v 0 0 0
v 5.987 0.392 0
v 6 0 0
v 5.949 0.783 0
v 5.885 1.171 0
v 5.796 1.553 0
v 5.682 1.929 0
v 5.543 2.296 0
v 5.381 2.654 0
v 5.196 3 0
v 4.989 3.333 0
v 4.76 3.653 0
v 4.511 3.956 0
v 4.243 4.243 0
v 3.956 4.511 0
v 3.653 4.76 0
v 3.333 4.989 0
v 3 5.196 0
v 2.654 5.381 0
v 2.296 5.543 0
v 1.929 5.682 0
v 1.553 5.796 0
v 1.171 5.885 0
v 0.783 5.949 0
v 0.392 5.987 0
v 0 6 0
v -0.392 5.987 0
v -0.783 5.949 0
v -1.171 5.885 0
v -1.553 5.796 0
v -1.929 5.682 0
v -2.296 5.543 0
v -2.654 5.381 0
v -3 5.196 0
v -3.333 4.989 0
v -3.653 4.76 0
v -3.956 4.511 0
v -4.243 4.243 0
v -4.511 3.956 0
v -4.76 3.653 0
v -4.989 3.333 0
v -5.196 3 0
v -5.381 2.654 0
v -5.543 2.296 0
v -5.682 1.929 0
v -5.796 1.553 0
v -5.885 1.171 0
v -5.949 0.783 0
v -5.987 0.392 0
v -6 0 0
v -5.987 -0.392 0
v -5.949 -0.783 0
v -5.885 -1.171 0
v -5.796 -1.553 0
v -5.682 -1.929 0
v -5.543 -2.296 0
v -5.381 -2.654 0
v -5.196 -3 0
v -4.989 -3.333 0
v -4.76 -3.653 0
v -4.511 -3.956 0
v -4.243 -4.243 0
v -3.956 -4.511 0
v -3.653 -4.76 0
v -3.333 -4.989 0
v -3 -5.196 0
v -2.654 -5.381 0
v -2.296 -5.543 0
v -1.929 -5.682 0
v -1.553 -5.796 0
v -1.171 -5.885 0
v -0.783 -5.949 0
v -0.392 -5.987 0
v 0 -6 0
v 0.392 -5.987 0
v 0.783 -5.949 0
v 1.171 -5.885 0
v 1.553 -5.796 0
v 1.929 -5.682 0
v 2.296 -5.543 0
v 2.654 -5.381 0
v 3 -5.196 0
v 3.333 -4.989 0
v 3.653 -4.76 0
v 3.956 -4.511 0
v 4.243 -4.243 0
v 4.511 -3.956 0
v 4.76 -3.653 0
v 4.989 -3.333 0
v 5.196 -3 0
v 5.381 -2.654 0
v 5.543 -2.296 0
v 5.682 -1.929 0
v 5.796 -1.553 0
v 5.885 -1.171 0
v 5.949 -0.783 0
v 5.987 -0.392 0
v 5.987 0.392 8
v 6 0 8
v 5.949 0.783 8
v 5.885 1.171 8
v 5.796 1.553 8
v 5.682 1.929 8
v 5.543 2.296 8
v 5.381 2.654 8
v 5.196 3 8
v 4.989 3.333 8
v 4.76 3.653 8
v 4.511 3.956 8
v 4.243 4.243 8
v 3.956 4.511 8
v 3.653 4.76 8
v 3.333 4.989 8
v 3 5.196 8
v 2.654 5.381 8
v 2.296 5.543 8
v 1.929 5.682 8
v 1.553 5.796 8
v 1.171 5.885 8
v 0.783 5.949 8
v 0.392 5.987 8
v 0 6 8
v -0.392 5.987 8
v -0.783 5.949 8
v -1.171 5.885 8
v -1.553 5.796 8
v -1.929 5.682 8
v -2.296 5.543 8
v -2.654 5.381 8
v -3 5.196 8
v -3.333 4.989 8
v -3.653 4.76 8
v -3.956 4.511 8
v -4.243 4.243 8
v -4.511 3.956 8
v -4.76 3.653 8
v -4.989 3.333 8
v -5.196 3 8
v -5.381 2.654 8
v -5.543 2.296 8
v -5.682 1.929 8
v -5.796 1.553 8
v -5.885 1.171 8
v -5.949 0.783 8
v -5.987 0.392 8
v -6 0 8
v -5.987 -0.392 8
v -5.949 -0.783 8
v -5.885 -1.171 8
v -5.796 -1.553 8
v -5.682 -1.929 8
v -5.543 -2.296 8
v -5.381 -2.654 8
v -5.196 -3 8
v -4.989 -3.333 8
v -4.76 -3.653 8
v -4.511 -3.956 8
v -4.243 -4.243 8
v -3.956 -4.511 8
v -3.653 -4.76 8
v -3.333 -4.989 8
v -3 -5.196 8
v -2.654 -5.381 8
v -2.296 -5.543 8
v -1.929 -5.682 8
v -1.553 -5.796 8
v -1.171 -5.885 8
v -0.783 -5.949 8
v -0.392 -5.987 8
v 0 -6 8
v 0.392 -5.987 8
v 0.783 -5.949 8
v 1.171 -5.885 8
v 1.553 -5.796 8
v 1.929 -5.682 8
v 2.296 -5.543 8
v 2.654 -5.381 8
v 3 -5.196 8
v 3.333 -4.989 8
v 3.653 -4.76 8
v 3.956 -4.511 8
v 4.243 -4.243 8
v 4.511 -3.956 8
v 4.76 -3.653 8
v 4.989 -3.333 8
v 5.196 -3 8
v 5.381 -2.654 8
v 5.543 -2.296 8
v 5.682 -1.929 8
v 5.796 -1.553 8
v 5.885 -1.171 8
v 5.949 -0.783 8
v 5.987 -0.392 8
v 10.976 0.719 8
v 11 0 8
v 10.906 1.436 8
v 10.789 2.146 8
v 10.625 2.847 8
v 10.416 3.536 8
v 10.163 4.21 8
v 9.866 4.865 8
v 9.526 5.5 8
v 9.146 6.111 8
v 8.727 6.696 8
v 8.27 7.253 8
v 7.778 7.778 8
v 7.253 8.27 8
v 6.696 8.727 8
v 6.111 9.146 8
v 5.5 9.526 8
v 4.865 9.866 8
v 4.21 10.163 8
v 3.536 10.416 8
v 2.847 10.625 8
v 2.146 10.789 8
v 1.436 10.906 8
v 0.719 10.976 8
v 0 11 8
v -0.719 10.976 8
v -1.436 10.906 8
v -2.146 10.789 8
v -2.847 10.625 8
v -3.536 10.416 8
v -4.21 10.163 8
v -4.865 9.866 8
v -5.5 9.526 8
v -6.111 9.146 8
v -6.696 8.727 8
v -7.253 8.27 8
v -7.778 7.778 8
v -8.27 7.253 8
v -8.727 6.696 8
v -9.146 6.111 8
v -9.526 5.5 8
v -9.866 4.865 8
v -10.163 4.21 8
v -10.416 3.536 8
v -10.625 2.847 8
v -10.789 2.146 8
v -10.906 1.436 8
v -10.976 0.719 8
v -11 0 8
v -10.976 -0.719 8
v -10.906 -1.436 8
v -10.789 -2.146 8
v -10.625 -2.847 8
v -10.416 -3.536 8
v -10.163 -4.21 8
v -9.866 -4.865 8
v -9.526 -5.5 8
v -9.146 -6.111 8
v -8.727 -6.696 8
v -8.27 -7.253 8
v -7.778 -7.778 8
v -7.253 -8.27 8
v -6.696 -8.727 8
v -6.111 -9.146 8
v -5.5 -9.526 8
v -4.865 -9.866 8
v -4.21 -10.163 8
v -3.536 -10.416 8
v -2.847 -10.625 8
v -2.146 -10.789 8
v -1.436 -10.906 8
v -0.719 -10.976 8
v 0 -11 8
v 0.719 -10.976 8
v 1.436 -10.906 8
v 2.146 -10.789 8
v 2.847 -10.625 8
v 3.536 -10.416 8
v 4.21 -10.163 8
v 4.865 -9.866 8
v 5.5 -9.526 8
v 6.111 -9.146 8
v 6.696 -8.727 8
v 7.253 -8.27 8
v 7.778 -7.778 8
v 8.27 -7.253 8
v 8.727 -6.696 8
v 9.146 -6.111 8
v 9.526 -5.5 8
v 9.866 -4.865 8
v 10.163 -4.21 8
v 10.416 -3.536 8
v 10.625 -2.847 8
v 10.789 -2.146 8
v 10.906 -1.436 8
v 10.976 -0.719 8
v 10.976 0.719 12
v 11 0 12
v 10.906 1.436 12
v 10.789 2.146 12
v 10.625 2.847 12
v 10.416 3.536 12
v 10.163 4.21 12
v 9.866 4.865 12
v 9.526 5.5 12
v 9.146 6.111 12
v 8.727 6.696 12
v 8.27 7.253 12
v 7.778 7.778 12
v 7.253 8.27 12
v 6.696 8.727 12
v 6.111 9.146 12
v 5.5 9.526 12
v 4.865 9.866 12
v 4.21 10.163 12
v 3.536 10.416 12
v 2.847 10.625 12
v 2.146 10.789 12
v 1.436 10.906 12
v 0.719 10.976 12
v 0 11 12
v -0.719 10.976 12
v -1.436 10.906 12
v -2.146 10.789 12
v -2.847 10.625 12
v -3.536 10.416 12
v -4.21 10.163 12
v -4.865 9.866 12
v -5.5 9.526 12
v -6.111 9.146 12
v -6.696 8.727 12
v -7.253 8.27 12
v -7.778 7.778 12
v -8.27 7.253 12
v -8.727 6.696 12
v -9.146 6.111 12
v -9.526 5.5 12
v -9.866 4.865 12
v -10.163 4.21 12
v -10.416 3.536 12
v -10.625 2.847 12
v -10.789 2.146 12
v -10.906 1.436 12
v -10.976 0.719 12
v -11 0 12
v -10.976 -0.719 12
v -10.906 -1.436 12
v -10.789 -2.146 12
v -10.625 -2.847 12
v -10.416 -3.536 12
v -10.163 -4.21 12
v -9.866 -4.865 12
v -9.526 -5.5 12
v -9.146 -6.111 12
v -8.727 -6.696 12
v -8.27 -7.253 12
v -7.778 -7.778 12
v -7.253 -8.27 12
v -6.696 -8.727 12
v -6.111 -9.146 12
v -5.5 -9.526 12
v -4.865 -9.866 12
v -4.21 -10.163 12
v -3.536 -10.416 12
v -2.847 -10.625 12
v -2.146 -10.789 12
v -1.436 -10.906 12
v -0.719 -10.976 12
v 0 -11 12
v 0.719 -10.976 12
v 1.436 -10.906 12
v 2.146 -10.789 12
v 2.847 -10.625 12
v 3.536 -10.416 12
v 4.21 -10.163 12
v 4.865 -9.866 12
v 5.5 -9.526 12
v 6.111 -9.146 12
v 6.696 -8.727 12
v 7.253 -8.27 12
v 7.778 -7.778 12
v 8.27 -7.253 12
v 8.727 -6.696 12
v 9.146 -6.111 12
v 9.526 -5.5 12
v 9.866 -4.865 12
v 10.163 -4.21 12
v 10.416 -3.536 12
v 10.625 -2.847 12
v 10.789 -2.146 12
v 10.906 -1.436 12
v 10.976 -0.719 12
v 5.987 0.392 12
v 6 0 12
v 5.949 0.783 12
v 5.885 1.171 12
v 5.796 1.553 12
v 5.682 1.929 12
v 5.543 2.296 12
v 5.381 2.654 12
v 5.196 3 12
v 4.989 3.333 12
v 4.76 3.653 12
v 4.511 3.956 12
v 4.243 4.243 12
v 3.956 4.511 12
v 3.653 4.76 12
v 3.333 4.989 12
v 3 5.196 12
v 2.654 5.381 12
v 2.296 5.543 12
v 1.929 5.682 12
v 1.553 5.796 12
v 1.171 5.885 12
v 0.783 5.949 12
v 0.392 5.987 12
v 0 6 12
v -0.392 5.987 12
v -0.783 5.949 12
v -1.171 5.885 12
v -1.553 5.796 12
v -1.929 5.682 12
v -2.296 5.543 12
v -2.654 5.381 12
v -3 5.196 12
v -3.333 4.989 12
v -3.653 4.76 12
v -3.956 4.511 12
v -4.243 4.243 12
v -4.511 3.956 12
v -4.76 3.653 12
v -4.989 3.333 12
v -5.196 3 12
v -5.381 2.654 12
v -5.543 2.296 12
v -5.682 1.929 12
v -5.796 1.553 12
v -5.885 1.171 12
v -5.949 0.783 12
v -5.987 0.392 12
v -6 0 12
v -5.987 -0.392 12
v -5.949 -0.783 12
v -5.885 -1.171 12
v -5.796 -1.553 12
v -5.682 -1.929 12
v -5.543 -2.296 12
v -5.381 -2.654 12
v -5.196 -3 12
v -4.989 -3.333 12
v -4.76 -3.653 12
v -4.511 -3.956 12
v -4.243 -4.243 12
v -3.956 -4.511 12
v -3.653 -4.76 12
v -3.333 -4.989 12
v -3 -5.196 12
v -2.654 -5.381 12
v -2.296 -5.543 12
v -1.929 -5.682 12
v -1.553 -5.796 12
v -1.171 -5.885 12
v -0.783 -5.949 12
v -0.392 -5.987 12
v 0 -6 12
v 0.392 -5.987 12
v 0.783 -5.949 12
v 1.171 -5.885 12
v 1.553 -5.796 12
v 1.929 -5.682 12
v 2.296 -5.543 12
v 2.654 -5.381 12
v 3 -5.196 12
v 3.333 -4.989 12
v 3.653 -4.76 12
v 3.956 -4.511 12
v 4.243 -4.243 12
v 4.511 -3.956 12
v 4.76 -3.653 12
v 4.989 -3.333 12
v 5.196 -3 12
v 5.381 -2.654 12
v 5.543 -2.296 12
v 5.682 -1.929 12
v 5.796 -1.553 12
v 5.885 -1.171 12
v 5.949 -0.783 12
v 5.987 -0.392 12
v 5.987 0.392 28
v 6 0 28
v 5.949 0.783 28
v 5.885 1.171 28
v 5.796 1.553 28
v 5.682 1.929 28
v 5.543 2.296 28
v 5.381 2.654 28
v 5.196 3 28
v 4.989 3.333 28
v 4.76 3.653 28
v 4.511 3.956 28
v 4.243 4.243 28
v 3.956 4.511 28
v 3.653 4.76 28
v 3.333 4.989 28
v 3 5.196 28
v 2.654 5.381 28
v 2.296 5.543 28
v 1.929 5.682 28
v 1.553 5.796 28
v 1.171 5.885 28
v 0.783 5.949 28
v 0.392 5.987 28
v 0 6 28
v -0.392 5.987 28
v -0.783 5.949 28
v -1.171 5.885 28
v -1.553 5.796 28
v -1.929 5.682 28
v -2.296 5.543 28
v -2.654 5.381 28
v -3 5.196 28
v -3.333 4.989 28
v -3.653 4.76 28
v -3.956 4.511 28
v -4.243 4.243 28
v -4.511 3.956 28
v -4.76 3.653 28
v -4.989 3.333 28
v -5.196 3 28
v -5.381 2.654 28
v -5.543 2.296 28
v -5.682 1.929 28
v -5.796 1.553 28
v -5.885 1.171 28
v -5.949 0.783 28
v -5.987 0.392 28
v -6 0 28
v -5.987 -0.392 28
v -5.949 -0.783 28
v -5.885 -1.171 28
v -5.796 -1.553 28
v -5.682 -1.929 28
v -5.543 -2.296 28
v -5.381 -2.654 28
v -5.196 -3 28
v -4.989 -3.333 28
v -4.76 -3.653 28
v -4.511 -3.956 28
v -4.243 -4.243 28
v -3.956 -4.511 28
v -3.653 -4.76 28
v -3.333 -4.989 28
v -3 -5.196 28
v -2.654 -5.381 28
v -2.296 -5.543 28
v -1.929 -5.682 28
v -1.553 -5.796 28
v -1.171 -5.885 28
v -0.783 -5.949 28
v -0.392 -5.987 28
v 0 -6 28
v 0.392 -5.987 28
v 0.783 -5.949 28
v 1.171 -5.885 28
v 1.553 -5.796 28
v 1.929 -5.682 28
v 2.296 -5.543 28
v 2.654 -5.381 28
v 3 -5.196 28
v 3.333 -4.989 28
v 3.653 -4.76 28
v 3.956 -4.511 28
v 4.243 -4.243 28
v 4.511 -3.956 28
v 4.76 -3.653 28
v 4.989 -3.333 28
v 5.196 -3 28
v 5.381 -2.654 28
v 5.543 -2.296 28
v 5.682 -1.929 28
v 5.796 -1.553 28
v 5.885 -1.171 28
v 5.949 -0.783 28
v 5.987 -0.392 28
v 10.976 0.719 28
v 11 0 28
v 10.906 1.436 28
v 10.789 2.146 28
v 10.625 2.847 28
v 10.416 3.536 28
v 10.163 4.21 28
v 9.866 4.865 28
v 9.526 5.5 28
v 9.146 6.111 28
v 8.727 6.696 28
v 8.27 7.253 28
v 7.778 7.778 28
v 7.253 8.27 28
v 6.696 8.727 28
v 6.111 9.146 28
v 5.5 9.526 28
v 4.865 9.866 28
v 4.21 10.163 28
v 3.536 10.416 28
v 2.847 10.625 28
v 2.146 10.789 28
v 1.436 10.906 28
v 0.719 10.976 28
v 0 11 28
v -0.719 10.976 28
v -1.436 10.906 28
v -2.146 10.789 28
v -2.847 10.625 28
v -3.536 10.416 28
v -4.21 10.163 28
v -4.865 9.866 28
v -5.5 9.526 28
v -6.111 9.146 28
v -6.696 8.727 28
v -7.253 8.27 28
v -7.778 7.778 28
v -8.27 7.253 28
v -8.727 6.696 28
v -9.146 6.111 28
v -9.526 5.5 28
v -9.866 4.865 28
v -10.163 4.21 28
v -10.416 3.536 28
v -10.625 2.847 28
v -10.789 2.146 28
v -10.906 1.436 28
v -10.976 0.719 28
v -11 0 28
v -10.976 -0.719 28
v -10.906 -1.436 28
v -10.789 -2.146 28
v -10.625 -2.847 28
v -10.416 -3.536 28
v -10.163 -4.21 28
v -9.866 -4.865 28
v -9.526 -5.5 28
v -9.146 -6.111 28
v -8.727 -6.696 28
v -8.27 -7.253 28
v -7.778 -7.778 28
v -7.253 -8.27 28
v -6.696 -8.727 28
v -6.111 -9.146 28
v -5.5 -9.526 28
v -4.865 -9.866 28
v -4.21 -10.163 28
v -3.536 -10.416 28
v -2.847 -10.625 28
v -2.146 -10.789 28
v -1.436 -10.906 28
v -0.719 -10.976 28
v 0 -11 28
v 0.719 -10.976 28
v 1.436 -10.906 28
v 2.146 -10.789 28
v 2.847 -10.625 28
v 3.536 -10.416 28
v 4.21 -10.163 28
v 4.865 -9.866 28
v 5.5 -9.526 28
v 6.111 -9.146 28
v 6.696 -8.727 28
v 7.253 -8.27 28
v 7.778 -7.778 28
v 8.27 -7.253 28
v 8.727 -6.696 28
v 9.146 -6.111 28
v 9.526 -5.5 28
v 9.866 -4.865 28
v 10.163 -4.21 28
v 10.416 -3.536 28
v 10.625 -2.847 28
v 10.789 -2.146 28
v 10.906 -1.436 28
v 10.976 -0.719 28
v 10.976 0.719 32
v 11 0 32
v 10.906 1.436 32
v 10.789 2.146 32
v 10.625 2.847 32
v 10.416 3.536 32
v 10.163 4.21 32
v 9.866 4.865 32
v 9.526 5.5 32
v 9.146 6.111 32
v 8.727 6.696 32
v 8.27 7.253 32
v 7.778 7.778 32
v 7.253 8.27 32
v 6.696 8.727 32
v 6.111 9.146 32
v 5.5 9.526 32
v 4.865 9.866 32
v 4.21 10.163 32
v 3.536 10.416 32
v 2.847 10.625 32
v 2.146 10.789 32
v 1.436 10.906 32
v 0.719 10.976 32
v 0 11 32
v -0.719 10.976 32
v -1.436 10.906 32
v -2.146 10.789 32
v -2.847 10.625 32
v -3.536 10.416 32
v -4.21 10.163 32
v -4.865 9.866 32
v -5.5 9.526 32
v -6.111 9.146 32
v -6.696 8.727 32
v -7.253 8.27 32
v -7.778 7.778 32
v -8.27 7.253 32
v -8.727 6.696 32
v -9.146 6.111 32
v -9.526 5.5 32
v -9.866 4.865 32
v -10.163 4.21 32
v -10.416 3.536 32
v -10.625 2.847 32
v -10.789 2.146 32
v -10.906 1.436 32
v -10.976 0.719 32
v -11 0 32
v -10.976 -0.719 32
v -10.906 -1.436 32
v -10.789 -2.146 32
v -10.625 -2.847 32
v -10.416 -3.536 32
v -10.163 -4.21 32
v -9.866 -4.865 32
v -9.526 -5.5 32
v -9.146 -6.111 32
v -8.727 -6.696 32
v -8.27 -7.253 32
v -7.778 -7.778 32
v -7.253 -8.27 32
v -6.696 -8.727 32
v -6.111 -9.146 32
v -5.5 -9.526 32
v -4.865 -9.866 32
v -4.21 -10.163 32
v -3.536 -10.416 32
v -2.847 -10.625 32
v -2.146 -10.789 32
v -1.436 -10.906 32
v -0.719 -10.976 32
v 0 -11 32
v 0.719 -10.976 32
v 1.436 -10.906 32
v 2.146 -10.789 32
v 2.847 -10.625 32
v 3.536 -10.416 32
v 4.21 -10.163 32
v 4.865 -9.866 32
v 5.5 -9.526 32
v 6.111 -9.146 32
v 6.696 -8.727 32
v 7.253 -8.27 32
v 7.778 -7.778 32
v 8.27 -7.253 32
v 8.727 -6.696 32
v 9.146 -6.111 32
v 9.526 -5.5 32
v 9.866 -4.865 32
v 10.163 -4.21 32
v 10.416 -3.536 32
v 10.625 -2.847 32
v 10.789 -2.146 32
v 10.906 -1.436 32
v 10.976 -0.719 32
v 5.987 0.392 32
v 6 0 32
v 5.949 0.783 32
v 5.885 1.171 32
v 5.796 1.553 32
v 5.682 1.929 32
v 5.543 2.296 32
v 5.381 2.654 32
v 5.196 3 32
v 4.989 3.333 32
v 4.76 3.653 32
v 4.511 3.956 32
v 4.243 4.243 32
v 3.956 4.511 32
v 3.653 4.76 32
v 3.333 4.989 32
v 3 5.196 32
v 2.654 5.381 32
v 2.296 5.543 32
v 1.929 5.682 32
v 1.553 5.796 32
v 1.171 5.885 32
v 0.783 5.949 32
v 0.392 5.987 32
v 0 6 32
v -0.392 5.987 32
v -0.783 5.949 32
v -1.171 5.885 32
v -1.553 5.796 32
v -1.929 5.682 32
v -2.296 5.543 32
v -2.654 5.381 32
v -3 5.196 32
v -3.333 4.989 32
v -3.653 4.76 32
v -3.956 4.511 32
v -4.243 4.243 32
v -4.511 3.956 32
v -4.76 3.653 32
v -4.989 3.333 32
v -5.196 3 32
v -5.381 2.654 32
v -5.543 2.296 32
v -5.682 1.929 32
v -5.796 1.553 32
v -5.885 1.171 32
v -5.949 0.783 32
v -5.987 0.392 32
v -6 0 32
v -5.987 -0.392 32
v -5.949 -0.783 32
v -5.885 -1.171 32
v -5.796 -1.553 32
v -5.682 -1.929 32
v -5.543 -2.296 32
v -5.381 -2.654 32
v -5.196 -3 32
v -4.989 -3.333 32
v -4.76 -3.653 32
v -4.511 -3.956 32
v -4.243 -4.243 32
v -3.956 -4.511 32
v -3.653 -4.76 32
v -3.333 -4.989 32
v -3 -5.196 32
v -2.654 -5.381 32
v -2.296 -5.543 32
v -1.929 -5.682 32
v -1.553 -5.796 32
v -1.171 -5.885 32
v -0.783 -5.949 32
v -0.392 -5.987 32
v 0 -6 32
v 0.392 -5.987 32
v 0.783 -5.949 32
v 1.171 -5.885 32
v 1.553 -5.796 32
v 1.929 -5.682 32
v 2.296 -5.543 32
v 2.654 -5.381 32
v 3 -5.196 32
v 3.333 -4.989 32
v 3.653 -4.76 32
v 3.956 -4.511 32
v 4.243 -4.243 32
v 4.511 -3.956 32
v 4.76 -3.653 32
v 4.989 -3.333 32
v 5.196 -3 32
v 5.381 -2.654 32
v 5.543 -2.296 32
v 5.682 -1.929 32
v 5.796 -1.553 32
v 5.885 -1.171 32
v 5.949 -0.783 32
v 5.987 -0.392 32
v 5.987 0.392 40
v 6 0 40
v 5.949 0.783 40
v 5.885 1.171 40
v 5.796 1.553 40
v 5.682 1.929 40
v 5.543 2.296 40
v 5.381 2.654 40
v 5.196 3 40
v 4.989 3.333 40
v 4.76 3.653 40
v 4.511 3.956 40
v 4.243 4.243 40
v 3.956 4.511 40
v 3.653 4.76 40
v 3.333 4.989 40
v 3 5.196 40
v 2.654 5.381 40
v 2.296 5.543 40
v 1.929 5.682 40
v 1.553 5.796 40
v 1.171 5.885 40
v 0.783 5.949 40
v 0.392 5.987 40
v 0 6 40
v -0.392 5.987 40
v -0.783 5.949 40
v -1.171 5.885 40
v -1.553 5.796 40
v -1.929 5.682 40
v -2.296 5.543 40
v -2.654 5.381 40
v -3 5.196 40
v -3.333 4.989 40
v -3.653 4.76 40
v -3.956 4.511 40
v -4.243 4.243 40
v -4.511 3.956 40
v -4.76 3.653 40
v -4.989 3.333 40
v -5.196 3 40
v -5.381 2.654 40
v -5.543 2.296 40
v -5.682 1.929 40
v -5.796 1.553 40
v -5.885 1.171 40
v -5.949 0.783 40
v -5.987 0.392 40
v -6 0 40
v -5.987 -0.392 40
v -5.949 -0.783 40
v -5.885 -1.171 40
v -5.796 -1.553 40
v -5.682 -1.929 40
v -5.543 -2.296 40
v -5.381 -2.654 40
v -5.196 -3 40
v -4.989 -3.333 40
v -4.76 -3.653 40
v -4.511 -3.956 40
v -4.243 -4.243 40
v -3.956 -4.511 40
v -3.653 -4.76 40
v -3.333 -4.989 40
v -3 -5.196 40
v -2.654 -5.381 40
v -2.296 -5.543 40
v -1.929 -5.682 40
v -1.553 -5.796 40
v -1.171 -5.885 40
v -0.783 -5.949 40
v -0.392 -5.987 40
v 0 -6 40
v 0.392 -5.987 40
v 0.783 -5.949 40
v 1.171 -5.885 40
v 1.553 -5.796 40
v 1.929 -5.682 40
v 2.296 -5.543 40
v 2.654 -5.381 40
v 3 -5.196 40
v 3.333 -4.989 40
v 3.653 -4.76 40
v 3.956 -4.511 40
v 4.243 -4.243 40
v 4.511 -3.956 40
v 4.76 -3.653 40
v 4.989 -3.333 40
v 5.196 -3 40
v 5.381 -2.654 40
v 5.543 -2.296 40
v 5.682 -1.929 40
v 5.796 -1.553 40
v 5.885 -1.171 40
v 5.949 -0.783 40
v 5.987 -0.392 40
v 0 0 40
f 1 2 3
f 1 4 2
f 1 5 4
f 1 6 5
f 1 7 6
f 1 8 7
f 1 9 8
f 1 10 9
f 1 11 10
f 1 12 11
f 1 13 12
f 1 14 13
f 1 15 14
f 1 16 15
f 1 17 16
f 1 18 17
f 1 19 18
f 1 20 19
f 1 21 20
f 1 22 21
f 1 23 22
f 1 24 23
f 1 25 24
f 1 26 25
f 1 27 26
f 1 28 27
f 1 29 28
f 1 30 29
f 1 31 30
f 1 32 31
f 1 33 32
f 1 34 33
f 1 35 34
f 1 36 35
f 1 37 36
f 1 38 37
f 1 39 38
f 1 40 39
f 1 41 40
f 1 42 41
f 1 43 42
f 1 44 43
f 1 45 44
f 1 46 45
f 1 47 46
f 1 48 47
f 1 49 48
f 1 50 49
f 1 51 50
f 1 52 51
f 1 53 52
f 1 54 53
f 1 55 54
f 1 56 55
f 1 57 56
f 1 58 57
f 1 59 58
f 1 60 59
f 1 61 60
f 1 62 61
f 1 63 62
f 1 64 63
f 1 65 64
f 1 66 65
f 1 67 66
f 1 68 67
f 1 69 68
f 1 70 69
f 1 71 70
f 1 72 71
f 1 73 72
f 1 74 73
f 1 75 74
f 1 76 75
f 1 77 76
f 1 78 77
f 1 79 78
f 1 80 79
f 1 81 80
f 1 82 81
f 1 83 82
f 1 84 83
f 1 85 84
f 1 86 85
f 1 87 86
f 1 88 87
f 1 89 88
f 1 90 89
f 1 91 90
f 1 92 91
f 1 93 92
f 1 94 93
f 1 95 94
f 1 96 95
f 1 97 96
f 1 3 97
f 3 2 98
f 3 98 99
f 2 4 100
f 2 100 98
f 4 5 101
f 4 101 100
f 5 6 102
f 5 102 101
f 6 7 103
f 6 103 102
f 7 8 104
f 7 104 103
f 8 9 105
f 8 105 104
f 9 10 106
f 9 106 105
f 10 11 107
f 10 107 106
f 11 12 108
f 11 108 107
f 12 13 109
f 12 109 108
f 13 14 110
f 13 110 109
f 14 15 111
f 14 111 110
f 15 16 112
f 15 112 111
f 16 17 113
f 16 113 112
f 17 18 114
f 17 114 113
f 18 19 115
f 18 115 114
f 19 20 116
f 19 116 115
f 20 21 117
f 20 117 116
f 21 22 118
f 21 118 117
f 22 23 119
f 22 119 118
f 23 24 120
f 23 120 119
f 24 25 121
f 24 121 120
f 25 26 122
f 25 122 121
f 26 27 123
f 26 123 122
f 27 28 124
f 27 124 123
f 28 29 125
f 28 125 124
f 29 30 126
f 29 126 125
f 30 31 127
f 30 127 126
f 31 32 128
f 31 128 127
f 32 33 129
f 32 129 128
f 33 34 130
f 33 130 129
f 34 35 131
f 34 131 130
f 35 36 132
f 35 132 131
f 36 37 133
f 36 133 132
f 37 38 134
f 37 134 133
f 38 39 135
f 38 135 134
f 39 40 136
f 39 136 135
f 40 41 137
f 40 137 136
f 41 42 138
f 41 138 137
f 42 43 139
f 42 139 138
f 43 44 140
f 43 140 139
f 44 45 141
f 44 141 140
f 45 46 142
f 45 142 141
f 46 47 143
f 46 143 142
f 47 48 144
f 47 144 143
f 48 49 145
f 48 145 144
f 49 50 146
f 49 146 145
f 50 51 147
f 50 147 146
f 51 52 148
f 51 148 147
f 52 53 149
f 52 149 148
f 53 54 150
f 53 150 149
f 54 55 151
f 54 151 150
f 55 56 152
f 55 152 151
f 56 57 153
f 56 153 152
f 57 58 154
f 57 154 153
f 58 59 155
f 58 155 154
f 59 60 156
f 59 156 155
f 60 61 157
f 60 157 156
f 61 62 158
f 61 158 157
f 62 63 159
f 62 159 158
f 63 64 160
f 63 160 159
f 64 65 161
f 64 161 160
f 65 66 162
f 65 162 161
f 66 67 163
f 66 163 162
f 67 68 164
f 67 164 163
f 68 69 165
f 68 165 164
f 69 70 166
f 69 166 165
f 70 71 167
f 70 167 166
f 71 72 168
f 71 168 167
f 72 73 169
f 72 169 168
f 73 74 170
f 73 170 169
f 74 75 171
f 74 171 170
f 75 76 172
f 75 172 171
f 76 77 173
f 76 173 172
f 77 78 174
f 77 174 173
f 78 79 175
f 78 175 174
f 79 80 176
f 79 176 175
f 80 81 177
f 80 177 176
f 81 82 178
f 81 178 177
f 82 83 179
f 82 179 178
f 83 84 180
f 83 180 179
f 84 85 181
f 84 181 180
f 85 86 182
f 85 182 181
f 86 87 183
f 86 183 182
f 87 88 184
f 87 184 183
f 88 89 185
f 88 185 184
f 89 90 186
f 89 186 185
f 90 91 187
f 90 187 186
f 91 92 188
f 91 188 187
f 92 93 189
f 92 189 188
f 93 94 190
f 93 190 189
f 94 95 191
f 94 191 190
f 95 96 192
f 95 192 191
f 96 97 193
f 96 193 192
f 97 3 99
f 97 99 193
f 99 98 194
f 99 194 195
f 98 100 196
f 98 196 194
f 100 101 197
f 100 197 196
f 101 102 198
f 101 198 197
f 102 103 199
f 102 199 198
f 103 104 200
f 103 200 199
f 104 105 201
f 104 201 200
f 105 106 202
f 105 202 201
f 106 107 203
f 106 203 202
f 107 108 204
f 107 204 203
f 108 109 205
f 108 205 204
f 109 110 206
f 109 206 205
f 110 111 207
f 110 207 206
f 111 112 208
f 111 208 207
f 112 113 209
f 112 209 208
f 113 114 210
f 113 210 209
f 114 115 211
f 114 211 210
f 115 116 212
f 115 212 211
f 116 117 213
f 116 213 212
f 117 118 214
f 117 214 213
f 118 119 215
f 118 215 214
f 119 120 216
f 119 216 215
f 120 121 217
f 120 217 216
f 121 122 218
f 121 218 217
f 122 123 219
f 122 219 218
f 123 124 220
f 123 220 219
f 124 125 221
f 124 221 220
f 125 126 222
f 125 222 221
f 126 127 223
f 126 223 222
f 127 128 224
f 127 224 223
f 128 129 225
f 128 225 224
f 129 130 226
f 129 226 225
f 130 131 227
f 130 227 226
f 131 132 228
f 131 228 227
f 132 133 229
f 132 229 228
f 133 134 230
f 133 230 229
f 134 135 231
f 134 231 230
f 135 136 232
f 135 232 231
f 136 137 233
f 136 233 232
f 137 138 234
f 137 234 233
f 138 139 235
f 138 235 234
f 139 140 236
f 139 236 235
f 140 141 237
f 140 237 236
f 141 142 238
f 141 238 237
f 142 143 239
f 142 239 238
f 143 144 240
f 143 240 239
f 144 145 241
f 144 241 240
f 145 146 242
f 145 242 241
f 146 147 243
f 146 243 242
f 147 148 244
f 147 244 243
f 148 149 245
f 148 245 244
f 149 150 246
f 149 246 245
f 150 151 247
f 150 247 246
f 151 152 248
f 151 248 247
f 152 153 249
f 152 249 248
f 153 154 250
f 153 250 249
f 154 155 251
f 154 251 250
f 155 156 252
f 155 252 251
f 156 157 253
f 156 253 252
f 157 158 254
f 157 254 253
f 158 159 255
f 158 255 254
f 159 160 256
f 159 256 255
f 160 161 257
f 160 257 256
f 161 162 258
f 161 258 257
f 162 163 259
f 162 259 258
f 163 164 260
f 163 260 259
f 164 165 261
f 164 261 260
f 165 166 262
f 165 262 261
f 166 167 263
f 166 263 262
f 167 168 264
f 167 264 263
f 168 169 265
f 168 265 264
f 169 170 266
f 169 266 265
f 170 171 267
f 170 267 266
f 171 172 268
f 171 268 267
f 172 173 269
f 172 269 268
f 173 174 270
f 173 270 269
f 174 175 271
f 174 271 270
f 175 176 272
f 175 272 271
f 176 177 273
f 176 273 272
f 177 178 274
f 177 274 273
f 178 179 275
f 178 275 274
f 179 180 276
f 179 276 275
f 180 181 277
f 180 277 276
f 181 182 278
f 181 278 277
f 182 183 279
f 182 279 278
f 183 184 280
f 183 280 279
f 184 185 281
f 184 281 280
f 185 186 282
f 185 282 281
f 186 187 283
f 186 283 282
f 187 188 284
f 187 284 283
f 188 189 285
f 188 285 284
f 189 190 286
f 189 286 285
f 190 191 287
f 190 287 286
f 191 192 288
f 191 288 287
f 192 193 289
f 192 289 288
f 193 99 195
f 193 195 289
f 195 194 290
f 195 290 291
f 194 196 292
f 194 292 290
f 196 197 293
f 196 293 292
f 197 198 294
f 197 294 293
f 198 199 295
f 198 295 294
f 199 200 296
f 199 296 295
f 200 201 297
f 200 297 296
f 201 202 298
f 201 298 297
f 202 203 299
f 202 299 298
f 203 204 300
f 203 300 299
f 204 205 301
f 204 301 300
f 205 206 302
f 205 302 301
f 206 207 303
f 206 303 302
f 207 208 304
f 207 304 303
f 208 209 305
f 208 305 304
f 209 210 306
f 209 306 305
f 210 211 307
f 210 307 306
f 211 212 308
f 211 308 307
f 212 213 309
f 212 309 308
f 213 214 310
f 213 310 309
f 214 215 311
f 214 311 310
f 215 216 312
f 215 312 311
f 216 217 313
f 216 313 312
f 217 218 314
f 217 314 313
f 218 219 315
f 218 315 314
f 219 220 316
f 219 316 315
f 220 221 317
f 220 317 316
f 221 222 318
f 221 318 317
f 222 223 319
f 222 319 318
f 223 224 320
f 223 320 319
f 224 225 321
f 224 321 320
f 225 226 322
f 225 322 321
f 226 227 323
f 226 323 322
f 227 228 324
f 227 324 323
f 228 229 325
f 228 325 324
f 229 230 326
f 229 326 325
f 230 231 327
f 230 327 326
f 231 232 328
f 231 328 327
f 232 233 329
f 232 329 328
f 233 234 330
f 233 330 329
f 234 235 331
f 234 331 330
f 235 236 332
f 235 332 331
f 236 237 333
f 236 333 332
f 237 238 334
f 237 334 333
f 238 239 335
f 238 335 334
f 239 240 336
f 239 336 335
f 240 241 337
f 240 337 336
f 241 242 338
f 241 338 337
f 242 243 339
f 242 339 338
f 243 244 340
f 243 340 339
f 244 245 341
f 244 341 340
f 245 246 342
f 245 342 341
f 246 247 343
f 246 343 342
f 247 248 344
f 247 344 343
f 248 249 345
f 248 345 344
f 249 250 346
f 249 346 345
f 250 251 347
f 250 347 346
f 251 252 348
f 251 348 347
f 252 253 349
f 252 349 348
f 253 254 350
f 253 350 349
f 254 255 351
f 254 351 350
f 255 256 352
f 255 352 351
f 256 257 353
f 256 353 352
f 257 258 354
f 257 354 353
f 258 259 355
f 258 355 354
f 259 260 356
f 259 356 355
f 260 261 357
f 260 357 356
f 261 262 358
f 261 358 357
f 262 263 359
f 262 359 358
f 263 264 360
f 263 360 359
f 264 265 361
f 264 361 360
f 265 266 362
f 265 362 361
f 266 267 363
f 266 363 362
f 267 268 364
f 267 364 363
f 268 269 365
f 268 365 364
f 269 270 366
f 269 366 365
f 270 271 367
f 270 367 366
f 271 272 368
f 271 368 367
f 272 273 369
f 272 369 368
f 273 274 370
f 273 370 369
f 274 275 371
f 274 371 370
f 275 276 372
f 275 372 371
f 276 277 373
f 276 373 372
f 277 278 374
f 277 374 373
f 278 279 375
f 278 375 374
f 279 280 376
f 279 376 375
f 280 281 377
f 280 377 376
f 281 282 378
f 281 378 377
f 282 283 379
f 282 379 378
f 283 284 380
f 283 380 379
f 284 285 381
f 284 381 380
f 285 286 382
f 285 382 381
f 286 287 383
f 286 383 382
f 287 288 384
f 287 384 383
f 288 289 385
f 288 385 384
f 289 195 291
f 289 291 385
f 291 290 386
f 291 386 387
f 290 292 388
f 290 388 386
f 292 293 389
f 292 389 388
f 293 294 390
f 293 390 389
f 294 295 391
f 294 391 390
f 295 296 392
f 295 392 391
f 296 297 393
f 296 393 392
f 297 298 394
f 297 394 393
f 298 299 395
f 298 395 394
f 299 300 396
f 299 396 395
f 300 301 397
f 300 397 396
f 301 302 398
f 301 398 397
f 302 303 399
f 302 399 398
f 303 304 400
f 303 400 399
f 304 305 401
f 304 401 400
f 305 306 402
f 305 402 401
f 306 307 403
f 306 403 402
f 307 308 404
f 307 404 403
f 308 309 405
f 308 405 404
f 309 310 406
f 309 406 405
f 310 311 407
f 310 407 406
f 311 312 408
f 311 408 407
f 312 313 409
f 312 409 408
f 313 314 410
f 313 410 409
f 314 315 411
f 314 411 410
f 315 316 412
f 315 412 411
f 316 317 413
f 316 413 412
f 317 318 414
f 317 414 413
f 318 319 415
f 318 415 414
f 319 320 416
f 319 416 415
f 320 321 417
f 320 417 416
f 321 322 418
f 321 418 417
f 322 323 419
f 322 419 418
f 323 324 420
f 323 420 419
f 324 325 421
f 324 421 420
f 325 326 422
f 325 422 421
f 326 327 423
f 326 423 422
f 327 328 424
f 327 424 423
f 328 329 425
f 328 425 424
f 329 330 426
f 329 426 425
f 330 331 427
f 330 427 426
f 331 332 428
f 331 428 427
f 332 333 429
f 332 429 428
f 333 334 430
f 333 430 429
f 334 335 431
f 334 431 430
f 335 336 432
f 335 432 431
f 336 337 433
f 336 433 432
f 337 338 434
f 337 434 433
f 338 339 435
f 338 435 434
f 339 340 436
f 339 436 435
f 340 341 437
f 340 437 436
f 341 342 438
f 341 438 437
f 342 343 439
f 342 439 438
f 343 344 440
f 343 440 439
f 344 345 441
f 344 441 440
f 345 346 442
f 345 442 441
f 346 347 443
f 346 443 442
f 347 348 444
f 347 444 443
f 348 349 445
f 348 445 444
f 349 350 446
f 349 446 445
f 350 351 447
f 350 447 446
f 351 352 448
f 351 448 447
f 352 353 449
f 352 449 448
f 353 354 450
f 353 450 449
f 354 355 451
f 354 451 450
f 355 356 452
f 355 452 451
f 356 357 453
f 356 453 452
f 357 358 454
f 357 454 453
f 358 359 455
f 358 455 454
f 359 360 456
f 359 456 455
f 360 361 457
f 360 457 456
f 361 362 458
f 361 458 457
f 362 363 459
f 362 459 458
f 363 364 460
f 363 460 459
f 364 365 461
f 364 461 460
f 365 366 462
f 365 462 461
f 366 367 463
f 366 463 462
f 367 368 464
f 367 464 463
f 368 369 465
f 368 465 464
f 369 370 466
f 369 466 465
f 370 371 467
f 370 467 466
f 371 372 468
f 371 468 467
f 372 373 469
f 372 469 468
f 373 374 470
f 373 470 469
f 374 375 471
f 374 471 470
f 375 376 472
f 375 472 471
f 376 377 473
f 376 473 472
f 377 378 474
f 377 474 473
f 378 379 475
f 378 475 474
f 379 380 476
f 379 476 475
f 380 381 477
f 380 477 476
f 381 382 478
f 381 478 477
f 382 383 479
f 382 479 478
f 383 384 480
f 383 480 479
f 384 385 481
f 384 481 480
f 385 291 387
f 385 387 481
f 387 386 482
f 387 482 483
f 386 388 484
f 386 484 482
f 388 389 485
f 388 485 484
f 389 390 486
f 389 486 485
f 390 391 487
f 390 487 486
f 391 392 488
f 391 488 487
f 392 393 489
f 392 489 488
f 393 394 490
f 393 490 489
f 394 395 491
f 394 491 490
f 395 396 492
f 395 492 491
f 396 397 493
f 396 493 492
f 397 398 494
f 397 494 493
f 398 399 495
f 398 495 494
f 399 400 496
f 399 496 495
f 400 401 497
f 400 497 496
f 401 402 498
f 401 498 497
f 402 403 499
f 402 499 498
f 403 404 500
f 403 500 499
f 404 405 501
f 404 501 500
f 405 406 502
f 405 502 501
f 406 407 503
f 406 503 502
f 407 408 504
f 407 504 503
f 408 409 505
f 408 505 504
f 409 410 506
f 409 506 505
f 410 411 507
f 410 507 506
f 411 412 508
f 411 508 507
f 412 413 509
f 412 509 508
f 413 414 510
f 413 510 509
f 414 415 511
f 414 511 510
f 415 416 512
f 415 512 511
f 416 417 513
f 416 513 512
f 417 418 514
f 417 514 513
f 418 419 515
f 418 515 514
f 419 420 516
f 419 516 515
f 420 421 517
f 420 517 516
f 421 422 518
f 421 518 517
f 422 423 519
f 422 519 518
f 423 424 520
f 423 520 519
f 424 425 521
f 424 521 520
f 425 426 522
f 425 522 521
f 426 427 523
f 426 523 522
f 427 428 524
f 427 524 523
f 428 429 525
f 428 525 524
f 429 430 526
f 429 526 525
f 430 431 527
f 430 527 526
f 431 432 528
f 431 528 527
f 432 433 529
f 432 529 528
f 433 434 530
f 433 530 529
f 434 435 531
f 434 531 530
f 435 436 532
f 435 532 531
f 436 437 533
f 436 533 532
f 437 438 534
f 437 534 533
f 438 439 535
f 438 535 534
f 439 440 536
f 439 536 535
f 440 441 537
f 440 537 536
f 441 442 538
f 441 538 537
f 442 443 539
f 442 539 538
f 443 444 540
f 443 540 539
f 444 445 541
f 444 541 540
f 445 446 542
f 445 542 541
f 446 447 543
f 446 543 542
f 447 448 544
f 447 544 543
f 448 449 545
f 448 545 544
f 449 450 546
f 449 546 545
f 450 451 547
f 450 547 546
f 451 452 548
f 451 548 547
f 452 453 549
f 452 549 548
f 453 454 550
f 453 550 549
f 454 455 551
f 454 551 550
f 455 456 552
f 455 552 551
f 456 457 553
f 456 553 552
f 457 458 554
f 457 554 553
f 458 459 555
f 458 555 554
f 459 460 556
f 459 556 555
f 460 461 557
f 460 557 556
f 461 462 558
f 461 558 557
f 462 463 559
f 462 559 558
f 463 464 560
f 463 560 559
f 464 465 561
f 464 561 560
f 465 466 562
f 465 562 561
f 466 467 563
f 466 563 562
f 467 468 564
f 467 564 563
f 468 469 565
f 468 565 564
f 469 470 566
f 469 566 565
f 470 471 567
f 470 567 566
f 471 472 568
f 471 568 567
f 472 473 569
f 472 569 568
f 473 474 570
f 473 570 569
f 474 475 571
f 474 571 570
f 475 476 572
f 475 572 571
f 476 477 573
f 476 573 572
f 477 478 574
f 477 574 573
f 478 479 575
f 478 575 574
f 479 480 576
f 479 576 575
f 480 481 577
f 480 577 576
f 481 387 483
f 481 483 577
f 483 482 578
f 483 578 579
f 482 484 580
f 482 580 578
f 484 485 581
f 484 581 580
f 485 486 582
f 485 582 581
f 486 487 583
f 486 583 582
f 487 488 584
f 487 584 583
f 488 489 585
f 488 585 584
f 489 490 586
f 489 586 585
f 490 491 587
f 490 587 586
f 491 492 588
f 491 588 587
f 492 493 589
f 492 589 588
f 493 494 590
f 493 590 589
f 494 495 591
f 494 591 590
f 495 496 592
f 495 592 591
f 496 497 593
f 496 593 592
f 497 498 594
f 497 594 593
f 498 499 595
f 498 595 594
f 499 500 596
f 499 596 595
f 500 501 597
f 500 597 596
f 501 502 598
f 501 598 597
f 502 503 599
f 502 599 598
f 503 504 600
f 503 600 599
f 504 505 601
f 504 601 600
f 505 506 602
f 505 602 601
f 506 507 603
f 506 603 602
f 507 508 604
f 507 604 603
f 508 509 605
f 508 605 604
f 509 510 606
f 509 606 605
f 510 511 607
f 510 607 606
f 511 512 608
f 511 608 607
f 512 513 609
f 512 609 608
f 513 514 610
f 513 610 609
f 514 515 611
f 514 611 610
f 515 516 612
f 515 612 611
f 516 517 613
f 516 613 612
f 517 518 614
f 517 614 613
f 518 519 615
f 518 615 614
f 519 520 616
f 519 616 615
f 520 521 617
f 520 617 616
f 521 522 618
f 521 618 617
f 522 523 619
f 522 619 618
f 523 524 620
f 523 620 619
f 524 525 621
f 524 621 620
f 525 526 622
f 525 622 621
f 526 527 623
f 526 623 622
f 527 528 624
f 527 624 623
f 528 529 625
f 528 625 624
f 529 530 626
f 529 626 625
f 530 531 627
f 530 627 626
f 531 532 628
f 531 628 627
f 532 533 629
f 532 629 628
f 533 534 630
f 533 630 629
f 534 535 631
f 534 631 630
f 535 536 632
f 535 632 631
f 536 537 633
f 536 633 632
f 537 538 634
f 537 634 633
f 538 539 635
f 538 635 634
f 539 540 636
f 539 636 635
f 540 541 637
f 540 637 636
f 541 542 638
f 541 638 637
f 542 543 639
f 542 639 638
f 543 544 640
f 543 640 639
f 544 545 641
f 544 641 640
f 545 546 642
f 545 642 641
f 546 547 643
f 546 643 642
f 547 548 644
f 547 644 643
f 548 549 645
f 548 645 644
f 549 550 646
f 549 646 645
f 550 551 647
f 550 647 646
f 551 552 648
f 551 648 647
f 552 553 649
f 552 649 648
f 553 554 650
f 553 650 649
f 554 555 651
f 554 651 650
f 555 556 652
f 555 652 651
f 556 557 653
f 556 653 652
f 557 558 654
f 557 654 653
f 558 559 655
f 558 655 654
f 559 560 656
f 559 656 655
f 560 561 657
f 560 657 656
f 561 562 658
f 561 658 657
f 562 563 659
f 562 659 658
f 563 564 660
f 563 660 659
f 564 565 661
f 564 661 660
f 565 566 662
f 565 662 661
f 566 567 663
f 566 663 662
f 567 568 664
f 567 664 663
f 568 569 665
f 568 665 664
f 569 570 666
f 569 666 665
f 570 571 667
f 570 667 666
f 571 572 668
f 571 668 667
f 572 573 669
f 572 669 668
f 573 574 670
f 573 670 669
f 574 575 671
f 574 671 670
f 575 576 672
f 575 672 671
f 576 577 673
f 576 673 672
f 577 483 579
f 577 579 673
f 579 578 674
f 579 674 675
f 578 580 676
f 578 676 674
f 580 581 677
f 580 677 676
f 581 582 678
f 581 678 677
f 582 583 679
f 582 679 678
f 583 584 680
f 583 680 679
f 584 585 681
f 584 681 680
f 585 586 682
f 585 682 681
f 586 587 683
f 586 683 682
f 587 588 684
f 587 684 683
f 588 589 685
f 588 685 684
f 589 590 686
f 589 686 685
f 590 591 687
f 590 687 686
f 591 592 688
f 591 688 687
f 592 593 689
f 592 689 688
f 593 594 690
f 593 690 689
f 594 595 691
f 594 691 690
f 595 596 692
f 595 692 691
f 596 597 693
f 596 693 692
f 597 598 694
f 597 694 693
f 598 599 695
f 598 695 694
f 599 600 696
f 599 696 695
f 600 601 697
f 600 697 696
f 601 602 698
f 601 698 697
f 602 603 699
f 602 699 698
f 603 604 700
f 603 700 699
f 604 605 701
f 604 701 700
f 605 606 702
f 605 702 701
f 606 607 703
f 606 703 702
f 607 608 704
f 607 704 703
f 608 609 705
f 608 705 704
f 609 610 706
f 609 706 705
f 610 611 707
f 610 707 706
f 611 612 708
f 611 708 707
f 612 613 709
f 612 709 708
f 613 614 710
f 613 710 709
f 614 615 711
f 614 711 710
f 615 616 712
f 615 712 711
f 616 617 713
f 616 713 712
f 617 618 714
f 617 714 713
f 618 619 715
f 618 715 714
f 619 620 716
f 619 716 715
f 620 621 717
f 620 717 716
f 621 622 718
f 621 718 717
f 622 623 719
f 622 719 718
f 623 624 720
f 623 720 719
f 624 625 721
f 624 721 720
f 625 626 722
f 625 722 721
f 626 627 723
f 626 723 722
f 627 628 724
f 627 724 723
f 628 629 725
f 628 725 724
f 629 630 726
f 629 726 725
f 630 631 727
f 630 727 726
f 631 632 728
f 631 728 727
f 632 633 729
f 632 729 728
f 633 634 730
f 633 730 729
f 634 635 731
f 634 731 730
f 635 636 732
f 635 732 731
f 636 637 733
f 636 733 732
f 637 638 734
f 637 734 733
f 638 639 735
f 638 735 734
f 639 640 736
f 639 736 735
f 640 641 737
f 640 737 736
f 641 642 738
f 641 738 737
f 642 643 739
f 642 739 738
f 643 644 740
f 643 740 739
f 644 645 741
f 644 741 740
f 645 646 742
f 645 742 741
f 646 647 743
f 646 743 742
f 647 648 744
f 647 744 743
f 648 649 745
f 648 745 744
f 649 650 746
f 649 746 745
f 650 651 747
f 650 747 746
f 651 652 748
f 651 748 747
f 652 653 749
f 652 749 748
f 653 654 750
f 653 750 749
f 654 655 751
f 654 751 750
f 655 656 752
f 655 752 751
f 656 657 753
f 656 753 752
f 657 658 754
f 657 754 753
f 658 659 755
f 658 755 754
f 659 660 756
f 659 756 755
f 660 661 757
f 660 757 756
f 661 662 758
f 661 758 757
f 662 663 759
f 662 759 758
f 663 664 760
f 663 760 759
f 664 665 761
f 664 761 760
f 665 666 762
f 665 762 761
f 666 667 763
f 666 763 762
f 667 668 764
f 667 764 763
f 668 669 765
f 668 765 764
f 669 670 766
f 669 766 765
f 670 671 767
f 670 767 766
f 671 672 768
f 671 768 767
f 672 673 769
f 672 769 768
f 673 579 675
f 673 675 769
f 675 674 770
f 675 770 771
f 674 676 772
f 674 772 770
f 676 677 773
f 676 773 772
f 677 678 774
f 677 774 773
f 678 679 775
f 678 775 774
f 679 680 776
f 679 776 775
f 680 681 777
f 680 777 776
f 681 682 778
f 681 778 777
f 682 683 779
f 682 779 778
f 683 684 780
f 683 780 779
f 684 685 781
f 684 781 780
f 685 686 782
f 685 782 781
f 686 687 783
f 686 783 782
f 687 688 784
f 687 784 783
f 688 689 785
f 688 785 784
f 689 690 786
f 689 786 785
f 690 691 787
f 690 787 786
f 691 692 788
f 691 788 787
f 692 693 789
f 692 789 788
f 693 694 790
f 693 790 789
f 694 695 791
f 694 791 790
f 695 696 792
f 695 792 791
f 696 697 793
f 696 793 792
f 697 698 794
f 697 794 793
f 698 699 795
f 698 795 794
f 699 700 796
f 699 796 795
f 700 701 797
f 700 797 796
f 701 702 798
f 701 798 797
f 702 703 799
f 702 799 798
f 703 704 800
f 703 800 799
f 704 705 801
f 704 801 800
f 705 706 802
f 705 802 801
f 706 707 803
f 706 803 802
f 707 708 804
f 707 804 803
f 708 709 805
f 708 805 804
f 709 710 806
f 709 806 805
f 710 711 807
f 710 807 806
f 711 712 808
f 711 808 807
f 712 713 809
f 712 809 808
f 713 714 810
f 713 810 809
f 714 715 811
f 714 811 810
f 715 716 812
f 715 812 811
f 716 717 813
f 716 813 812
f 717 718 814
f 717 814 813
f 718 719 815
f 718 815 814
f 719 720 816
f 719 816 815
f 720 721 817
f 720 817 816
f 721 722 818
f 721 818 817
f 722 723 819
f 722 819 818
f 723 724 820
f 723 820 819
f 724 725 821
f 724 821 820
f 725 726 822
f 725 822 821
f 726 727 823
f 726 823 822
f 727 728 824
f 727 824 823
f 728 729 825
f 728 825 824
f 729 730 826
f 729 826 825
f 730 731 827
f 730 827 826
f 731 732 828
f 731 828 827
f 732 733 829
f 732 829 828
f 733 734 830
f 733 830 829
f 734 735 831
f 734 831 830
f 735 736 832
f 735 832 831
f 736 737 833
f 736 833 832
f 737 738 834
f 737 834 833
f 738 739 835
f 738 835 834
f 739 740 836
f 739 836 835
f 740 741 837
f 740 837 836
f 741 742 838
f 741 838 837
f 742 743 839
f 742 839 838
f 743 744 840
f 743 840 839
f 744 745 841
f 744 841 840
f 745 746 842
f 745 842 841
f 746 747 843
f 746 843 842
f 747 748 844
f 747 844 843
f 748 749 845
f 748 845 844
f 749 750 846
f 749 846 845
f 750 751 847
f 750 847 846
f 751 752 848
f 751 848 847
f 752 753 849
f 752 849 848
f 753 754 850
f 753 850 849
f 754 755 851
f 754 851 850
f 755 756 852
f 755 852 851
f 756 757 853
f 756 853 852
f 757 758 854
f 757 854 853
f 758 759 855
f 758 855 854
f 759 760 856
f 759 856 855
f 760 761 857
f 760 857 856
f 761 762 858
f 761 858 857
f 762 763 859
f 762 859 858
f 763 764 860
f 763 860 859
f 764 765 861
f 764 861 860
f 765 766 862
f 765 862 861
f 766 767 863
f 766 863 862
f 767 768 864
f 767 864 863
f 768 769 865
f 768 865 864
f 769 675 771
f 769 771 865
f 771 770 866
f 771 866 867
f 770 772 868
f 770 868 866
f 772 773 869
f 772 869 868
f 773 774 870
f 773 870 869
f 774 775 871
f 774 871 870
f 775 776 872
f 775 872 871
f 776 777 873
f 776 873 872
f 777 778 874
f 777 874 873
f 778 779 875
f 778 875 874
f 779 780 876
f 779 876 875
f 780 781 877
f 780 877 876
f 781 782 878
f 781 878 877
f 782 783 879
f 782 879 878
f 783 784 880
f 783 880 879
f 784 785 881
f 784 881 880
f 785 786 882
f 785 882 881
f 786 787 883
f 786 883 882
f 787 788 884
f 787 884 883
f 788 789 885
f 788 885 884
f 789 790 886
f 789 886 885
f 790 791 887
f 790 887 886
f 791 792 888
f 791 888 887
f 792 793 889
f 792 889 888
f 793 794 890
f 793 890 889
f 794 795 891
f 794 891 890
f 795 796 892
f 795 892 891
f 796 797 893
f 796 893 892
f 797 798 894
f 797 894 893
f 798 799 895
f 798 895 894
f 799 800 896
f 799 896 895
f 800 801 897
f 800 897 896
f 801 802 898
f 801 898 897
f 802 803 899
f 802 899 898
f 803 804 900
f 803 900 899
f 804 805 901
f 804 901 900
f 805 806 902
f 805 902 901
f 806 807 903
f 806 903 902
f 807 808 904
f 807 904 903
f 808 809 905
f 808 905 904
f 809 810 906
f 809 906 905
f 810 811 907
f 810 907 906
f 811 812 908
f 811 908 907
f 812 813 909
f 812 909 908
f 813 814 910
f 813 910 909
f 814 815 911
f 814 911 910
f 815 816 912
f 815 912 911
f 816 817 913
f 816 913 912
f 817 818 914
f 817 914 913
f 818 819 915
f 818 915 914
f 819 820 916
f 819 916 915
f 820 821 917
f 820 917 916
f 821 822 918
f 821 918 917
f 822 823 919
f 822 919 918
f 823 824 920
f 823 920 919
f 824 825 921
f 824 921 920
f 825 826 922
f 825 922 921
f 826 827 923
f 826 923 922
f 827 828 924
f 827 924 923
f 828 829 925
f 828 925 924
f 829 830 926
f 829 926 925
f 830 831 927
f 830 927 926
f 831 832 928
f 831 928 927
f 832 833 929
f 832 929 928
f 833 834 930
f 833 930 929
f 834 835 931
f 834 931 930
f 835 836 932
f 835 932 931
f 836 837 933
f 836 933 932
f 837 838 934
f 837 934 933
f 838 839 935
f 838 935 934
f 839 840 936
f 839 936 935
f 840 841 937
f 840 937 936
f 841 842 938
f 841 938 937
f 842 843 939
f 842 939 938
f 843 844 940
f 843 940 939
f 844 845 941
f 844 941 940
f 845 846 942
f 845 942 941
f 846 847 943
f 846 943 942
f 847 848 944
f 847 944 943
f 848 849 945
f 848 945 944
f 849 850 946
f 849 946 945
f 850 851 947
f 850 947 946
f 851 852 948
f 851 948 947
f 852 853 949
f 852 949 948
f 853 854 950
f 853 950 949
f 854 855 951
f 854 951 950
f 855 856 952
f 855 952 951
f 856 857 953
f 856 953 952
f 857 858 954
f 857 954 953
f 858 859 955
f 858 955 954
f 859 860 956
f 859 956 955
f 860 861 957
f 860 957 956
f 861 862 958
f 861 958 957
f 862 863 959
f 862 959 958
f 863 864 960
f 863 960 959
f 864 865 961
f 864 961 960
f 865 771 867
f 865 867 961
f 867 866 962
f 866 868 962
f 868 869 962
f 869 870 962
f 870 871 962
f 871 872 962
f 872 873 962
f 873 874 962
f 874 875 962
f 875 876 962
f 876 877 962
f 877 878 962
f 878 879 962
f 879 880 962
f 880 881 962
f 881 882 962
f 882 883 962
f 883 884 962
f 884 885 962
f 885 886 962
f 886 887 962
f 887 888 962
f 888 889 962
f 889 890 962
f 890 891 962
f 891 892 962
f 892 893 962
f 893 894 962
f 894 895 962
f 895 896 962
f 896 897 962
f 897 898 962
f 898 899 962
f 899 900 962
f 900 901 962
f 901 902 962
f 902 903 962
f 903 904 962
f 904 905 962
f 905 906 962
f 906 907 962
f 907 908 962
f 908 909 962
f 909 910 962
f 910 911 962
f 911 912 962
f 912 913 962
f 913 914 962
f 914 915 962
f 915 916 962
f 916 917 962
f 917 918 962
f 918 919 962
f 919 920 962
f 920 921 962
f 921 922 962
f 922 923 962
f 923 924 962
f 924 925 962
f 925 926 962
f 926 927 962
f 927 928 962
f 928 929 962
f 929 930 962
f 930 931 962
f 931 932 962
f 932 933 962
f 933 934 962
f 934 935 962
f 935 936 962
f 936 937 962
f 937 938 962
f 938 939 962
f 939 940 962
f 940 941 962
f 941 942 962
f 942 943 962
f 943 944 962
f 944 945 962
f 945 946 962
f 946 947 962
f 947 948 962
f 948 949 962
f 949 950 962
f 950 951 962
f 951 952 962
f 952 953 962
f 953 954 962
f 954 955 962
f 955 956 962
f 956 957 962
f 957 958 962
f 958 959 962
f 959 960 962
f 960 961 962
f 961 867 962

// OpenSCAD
// Original MechIntel educational model. CC0-1.0. Units: mm.
// Not a standardized or load-rated component.
$fn=96;
// Section points: [radius, height], mm. Edit to change the profile.
section=[[0, 0], [6, 0], [6, 8], [11, 8], [11, 12], [6, 12], [6, 28], [11, 28], [11, 32], [6, 32], [6, 40], [0, 40]];
rotate_extrude($fn=96) polygon(points=section);
